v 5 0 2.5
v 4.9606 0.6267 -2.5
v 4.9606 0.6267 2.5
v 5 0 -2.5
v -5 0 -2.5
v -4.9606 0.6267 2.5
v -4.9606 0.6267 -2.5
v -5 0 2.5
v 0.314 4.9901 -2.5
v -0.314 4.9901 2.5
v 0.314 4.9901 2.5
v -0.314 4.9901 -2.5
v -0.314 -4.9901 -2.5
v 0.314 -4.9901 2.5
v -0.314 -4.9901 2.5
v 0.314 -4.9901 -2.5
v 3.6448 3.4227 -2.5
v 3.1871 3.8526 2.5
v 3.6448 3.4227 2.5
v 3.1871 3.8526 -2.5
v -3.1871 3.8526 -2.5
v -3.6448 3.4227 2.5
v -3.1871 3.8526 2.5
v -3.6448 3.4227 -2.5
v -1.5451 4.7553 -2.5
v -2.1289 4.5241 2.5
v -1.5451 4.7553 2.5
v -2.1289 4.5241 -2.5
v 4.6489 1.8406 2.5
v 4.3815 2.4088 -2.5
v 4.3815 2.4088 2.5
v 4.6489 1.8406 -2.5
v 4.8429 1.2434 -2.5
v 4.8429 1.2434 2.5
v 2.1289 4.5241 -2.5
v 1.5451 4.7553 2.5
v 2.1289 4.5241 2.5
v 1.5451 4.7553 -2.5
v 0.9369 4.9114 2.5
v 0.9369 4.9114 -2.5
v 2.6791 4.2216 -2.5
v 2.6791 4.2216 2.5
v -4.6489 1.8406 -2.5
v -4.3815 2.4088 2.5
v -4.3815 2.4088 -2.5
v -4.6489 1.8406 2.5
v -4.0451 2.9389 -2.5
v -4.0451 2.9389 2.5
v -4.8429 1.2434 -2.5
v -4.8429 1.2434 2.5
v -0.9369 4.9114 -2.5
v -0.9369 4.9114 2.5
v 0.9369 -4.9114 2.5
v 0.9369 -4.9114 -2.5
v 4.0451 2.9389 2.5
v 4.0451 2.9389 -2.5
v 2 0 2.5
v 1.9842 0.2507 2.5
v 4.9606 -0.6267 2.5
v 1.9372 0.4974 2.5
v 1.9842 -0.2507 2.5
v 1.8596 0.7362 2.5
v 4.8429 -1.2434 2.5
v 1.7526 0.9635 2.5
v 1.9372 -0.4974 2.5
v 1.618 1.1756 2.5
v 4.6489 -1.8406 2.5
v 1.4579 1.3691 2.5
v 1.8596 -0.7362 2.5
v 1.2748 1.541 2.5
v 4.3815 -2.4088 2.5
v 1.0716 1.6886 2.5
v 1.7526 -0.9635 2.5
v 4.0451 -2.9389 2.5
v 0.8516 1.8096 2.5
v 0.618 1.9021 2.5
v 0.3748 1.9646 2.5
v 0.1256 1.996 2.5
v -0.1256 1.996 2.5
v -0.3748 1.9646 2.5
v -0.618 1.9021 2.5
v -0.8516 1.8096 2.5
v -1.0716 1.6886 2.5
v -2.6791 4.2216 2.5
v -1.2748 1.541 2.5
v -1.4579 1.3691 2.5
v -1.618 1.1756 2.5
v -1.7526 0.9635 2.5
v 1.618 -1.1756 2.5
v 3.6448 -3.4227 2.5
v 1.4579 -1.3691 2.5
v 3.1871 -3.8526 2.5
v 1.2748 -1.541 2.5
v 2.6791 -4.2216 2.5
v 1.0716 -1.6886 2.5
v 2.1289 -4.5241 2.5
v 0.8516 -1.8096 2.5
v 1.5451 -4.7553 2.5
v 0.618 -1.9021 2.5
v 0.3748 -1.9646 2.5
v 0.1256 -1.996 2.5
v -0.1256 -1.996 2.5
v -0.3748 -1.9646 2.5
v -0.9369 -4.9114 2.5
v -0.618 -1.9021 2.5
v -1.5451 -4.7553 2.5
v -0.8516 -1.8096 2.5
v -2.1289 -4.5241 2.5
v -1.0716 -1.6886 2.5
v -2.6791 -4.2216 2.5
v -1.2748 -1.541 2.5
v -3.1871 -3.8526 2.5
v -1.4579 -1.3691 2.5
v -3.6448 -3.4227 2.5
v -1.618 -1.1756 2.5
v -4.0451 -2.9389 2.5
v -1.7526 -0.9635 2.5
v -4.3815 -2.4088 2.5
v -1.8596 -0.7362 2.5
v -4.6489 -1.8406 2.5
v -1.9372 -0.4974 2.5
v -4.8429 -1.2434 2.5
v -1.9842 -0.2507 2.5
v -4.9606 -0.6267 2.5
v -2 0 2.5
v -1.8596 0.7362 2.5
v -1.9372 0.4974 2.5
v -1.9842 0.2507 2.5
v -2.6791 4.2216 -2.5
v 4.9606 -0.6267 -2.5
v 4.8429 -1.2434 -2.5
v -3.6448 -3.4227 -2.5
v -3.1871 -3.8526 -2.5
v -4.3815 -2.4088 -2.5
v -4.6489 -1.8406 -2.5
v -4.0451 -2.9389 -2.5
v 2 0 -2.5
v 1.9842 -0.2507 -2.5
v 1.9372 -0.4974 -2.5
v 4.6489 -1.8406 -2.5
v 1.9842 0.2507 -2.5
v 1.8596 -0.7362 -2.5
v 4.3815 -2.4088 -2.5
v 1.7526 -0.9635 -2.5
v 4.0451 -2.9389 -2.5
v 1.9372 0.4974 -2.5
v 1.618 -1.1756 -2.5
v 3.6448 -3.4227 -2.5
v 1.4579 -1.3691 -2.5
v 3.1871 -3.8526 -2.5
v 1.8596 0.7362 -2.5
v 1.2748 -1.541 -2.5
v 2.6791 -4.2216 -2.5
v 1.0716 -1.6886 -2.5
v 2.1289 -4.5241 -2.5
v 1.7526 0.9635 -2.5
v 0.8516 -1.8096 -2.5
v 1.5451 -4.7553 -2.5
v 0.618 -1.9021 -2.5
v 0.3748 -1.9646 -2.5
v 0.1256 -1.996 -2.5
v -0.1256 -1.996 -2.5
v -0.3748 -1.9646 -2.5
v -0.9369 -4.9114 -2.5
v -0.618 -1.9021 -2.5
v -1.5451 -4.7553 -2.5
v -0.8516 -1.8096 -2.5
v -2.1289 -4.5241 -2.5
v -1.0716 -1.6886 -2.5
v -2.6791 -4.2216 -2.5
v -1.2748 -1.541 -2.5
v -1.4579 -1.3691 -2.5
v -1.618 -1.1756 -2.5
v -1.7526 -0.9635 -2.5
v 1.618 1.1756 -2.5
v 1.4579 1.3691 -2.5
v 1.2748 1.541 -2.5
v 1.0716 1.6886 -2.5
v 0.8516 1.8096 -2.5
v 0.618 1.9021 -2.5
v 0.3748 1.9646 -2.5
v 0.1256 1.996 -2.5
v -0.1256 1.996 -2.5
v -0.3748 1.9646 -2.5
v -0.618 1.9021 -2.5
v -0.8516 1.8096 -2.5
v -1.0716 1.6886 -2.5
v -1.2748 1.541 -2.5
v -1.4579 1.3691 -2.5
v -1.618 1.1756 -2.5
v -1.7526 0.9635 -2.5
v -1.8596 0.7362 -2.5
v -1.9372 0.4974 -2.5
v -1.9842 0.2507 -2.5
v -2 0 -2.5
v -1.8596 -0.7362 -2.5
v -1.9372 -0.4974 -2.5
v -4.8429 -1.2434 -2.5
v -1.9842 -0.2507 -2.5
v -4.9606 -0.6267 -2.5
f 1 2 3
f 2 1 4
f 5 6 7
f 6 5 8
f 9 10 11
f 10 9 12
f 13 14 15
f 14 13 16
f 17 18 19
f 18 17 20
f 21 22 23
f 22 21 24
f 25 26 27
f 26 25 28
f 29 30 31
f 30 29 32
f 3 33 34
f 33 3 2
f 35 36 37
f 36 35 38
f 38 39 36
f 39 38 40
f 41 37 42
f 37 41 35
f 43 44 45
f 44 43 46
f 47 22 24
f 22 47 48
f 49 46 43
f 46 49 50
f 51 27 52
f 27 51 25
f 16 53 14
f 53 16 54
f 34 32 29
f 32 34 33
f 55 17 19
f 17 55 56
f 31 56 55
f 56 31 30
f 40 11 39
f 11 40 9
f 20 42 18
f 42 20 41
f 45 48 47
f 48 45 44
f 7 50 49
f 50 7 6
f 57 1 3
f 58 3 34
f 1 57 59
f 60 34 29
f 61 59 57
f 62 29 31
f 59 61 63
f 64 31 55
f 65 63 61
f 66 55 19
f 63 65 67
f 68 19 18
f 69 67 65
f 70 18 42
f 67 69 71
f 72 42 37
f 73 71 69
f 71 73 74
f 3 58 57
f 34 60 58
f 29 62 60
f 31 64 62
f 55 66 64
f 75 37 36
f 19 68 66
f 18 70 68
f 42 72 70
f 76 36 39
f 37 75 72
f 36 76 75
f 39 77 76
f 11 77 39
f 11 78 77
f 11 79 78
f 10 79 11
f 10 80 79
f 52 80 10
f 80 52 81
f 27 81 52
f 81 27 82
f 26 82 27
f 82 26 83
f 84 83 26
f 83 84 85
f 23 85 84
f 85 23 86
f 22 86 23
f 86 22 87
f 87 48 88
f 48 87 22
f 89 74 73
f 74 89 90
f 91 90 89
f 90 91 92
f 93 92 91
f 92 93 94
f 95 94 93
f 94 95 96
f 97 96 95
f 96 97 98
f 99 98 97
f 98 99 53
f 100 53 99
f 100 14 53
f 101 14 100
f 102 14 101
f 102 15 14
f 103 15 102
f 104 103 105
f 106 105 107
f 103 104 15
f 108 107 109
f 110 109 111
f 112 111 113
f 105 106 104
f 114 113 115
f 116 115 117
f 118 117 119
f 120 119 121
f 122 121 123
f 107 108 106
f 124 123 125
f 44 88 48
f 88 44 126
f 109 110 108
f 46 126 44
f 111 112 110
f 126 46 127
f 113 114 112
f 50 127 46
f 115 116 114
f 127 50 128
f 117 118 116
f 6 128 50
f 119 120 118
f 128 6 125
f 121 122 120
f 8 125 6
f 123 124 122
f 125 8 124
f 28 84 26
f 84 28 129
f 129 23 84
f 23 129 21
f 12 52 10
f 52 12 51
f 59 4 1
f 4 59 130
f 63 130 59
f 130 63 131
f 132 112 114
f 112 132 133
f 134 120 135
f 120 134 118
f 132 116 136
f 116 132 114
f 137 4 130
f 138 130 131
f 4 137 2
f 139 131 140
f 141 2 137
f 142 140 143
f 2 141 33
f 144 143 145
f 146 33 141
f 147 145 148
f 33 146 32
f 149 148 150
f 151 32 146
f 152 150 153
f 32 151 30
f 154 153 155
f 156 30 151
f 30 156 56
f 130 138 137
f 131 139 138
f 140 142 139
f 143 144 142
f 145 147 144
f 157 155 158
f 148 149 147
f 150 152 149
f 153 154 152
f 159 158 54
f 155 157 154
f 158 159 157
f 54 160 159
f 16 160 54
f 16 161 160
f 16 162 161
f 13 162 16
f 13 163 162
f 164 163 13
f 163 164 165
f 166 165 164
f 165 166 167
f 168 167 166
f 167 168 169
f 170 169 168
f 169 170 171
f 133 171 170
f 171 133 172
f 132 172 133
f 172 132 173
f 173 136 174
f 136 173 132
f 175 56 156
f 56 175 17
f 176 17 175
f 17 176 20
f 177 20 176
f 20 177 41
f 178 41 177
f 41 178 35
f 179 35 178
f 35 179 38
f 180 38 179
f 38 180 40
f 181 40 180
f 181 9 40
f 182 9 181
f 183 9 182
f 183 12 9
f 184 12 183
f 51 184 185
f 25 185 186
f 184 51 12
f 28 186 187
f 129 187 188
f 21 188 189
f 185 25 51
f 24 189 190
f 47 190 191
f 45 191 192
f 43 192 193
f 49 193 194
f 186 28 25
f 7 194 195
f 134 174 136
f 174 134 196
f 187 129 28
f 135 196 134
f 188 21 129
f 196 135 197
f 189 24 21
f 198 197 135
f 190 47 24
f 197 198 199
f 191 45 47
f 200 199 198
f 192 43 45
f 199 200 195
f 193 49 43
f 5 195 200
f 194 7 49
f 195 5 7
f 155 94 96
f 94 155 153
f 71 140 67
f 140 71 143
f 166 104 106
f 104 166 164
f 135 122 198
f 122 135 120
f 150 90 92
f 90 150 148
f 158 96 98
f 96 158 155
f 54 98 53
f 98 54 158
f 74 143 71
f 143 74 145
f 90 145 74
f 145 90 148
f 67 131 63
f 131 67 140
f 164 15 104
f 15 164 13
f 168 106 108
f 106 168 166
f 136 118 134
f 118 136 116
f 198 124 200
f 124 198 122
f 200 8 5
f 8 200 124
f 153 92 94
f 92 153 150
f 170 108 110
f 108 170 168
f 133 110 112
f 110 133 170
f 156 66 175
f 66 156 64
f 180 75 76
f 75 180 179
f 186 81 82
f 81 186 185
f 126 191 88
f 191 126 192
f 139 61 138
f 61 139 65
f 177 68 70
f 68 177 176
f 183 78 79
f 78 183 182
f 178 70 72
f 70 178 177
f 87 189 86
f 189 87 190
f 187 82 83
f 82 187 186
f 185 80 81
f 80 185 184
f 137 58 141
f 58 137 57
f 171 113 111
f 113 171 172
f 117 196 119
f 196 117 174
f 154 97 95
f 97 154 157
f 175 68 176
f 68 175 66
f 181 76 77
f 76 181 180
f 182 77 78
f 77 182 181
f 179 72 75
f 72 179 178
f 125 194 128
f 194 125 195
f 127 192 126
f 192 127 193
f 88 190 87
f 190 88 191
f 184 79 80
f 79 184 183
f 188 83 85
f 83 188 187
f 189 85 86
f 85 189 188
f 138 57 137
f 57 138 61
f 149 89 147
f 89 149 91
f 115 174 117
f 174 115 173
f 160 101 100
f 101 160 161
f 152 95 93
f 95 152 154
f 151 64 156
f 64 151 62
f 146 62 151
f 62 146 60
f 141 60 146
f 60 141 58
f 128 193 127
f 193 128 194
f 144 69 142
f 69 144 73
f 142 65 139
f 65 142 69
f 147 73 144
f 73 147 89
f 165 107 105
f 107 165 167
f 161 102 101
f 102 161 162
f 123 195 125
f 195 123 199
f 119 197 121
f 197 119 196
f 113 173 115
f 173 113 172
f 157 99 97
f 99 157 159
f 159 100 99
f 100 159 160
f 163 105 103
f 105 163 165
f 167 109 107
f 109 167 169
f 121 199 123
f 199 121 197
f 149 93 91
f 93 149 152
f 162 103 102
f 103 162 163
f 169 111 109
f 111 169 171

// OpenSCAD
$fn = 50;


difference() {
	union() {
		translate(v = [0, 0, -2.5000000000]) {
			cylinder(h = 5, r = 5.0000000000);
		}
	}
	union() {
		translate(v = [0, 0, -100.0000000000]) {
			cylinder(h = 200, r = 2);
		}
	}
}
